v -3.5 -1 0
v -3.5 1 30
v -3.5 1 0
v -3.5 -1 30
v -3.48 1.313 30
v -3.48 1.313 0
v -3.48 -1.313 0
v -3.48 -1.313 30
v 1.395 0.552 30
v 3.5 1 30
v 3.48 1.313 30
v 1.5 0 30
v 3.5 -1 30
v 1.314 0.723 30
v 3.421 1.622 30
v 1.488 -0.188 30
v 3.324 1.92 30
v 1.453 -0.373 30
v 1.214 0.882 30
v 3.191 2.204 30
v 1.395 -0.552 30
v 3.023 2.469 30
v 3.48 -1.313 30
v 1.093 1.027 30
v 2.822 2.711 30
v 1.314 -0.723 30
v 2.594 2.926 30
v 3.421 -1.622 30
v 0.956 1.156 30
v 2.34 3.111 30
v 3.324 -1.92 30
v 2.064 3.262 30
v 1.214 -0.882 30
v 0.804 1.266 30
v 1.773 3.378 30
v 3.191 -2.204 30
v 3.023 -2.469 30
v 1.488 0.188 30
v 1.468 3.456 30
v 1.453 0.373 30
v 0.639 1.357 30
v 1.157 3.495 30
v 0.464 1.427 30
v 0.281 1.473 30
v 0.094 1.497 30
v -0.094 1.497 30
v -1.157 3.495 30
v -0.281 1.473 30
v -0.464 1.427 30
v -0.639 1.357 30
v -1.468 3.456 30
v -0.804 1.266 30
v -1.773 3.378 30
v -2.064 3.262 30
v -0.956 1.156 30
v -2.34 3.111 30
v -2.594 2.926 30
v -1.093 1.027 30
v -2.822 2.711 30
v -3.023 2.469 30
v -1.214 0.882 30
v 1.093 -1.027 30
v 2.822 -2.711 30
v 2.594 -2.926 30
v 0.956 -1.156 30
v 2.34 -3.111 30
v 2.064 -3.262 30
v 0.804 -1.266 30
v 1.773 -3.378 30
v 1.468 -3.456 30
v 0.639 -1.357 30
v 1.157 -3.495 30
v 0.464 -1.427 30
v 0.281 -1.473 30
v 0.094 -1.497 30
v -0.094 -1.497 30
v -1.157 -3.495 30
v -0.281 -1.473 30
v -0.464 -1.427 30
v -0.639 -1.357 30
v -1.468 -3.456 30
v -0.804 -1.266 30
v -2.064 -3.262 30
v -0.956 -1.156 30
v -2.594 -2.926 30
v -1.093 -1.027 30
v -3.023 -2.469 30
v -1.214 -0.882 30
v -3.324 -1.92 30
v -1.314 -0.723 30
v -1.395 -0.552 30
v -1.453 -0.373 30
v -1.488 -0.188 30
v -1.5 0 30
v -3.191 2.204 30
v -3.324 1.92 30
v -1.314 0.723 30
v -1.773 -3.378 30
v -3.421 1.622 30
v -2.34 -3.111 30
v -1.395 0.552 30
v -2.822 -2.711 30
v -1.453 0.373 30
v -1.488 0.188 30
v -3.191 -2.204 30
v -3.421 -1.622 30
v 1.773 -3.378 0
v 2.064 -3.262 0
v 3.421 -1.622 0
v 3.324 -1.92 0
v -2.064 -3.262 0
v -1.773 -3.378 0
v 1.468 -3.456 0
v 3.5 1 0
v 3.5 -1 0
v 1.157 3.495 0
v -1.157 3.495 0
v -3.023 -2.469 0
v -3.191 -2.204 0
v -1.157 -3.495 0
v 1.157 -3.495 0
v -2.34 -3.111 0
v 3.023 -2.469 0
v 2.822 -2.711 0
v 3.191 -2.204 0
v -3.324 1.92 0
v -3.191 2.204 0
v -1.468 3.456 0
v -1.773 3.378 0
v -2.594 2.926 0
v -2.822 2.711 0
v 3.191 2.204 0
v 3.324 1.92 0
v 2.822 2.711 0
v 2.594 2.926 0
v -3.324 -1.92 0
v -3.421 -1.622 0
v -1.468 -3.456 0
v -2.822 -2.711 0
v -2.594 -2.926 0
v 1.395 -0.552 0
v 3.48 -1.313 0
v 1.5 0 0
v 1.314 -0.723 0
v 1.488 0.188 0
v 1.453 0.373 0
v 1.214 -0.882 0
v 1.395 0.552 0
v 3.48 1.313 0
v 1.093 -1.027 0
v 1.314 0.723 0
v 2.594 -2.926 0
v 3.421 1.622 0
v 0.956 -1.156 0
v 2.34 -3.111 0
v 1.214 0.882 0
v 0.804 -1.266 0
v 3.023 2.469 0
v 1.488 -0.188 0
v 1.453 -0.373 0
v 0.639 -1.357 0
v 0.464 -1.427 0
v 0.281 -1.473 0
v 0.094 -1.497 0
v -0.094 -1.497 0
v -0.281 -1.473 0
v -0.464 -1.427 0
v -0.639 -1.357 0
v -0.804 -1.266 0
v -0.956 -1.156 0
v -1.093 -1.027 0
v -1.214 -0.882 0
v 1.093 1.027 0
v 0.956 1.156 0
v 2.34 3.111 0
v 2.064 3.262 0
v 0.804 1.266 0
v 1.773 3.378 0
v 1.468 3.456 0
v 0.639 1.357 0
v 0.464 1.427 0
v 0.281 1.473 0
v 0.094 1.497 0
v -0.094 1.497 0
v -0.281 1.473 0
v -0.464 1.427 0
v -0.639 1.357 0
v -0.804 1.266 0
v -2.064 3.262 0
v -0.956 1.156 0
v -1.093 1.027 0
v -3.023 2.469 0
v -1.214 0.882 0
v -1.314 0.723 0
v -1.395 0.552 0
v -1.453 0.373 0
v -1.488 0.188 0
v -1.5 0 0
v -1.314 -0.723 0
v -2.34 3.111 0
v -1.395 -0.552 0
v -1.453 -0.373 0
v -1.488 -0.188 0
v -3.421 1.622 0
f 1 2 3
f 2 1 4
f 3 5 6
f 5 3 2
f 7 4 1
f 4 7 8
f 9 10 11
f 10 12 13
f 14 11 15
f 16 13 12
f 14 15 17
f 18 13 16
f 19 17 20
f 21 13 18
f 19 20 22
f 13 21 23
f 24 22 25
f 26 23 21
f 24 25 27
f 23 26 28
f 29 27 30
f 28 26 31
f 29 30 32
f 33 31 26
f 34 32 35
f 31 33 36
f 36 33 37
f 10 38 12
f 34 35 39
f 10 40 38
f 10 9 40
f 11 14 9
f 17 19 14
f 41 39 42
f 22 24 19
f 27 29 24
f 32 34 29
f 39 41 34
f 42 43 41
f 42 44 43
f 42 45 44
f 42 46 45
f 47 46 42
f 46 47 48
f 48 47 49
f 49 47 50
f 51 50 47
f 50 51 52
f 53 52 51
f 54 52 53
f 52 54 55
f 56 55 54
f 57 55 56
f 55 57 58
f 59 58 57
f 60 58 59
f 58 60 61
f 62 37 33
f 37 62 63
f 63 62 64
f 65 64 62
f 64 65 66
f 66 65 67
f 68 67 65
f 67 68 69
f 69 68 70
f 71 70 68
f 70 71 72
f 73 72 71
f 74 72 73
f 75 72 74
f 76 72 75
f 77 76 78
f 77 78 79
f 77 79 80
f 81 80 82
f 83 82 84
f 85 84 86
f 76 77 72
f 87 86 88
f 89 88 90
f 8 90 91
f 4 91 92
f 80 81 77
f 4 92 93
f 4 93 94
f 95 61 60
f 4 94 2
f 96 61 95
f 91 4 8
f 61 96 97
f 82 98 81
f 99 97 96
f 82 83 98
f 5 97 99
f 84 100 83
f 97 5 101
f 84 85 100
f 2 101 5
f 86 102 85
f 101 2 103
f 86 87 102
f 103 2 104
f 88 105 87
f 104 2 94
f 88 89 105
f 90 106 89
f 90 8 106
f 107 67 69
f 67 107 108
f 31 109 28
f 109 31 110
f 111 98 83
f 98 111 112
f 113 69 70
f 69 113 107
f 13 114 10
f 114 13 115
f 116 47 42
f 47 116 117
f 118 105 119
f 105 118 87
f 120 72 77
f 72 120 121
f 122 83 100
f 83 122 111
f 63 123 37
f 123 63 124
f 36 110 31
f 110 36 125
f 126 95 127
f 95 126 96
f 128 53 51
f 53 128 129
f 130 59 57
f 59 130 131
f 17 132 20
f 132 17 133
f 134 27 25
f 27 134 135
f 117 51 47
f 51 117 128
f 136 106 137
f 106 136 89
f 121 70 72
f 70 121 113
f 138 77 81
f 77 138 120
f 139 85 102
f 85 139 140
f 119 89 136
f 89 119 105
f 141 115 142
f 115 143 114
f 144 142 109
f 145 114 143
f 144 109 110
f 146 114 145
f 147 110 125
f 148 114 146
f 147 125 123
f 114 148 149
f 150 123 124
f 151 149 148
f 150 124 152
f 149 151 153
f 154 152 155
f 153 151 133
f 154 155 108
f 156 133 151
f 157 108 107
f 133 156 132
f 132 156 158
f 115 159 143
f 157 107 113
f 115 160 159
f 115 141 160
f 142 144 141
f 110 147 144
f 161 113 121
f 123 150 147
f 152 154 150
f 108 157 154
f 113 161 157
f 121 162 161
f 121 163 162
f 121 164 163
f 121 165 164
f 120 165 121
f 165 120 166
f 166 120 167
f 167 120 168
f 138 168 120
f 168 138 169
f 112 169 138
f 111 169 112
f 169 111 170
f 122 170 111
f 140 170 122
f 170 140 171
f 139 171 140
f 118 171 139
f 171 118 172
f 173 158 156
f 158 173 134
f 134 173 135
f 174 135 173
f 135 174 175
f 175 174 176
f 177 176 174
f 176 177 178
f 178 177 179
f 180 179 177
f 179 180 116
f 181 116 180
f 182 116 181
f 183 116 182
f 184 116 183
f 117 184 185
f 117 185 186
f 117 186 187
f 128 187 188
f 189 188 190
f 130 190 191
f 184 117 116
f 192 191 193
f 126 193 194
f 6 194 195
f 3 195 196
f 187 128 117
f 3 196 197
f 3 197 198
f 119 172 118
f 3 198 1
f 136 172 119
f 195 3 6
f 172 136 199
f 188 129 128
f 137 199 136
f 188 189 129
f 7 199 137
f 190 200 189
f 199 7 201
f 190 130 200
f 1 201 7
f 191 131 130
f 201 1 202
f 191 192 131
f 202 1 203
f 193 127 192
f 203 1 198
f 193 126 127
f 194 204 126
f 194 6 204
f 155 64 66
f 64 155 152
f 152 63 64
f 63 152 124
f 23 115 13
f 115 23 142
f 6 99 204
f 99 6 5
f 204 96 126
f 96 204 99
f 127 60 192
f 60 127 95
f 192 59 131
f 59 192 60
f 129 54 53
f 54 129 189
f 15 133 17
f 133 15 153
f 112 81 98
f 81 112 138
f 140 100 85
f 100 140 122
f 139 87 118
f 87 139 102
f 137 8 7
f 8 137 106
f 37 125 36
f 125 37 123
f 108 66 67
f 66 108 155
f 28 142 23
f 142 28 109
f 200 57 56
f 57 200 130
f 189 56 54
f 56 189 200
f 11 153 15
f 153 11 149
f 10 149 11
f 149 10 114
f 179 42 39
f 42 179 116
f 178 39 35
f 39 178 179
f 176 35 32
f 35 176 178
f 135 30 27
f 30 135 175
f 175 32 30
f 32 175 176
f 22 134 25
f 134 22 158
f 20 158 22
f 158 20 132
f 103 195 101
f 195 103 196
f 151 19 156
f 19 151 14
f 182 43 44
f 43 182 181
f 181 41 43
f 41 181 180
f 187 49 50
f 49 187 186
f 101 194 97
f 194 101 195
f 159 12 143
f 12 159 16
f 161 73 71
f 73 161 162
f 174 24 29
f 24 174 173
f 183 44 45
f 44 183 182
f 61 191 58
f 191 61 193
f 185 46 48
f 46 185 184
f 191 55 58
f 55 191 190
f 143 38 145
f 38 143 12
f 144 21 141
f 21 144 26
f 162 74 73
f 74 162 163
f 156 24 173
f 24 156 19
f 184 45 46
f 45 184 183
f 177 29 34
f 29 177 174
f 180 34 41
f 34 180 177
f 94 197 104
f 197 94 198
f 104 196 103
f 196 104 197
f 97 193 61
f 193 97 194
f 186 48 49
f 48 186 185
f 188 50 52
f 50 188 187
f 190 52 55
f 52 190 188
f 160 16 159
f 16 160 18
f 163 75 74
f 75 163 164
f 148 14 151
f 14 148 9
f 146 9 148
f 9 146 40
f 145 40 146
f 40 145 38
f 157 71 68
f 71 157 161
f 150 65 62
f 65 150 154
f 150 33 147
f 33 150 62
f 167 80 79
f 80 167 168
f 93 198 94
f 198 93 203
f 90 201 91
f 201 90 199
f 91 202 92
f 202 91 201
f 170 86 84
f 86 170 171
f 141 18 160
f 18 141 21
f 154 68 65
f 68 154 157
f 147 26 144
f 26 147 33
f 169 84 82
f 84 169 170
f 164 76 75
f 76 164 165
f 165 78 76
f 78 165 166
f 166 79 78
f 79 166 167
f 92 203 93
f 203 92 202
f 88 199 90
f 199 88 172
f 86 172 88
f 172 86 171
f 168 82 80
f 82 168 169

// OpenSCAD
$fn = 50;


difference() {
	union() {
		translate(v = [0, 0, 0]) {
			rotate(a = [0, 0, 0]) {
				hull() {
					translate(v = [-1.0000000000, 1.0000000000, 0]) {
						rotate(a = [0, 0, 0]) {
							translate(v = [0, 0, 0]) {
								rotate(a = [0, 0, 0]) {
									cylinder(h = 30, r = 2.5000000000);
								}
							}
						}
					}
					translate(v = [1.0000000000, 1.0000000000, 0]) {
						rotate(a = [0, 0, 0]) {
							translate(v = [0, 0, 0]) {
								rotate(a = [0, 0, 0]) {
									cylinder(h = 30, r = 2.5000000000);
								}
							}
						}
					}
					translate(v = [-1.0000000000, -1.0000000000, 0]) {
						rotate(a = [0, 0, 0]) {
							translate(v = [0, 0, 0]) {
								rotate(a = [0, 0, 0]) {
									cylinder(h = 30, r = 2.5000000000);
								}
							}
						}
					}
					translate(v = [1.0000000000, -1.0000000000, 0]) {
						rotate(a = [0, 0, 0]) {
							translate(v = [0, 0, 0]) {
								rotate(a = [0, 0, 0]) {
									cylinder(h = 30, r = 2.5000000000);
								}
							}
						}
					}
				}
			}
		}
	}
	union() {
		translate(v = [0.0000000000, 0.0000000000, 0]) {
			rotate(a = [0, 0, 0]) {
				translate(v = [0, 0, -50]) {
					rotate(a = [0, 0, 0]) {
						cylinder(h = 100, r = 1.5000000000);
					}
				}
			}
		}
	}
}
